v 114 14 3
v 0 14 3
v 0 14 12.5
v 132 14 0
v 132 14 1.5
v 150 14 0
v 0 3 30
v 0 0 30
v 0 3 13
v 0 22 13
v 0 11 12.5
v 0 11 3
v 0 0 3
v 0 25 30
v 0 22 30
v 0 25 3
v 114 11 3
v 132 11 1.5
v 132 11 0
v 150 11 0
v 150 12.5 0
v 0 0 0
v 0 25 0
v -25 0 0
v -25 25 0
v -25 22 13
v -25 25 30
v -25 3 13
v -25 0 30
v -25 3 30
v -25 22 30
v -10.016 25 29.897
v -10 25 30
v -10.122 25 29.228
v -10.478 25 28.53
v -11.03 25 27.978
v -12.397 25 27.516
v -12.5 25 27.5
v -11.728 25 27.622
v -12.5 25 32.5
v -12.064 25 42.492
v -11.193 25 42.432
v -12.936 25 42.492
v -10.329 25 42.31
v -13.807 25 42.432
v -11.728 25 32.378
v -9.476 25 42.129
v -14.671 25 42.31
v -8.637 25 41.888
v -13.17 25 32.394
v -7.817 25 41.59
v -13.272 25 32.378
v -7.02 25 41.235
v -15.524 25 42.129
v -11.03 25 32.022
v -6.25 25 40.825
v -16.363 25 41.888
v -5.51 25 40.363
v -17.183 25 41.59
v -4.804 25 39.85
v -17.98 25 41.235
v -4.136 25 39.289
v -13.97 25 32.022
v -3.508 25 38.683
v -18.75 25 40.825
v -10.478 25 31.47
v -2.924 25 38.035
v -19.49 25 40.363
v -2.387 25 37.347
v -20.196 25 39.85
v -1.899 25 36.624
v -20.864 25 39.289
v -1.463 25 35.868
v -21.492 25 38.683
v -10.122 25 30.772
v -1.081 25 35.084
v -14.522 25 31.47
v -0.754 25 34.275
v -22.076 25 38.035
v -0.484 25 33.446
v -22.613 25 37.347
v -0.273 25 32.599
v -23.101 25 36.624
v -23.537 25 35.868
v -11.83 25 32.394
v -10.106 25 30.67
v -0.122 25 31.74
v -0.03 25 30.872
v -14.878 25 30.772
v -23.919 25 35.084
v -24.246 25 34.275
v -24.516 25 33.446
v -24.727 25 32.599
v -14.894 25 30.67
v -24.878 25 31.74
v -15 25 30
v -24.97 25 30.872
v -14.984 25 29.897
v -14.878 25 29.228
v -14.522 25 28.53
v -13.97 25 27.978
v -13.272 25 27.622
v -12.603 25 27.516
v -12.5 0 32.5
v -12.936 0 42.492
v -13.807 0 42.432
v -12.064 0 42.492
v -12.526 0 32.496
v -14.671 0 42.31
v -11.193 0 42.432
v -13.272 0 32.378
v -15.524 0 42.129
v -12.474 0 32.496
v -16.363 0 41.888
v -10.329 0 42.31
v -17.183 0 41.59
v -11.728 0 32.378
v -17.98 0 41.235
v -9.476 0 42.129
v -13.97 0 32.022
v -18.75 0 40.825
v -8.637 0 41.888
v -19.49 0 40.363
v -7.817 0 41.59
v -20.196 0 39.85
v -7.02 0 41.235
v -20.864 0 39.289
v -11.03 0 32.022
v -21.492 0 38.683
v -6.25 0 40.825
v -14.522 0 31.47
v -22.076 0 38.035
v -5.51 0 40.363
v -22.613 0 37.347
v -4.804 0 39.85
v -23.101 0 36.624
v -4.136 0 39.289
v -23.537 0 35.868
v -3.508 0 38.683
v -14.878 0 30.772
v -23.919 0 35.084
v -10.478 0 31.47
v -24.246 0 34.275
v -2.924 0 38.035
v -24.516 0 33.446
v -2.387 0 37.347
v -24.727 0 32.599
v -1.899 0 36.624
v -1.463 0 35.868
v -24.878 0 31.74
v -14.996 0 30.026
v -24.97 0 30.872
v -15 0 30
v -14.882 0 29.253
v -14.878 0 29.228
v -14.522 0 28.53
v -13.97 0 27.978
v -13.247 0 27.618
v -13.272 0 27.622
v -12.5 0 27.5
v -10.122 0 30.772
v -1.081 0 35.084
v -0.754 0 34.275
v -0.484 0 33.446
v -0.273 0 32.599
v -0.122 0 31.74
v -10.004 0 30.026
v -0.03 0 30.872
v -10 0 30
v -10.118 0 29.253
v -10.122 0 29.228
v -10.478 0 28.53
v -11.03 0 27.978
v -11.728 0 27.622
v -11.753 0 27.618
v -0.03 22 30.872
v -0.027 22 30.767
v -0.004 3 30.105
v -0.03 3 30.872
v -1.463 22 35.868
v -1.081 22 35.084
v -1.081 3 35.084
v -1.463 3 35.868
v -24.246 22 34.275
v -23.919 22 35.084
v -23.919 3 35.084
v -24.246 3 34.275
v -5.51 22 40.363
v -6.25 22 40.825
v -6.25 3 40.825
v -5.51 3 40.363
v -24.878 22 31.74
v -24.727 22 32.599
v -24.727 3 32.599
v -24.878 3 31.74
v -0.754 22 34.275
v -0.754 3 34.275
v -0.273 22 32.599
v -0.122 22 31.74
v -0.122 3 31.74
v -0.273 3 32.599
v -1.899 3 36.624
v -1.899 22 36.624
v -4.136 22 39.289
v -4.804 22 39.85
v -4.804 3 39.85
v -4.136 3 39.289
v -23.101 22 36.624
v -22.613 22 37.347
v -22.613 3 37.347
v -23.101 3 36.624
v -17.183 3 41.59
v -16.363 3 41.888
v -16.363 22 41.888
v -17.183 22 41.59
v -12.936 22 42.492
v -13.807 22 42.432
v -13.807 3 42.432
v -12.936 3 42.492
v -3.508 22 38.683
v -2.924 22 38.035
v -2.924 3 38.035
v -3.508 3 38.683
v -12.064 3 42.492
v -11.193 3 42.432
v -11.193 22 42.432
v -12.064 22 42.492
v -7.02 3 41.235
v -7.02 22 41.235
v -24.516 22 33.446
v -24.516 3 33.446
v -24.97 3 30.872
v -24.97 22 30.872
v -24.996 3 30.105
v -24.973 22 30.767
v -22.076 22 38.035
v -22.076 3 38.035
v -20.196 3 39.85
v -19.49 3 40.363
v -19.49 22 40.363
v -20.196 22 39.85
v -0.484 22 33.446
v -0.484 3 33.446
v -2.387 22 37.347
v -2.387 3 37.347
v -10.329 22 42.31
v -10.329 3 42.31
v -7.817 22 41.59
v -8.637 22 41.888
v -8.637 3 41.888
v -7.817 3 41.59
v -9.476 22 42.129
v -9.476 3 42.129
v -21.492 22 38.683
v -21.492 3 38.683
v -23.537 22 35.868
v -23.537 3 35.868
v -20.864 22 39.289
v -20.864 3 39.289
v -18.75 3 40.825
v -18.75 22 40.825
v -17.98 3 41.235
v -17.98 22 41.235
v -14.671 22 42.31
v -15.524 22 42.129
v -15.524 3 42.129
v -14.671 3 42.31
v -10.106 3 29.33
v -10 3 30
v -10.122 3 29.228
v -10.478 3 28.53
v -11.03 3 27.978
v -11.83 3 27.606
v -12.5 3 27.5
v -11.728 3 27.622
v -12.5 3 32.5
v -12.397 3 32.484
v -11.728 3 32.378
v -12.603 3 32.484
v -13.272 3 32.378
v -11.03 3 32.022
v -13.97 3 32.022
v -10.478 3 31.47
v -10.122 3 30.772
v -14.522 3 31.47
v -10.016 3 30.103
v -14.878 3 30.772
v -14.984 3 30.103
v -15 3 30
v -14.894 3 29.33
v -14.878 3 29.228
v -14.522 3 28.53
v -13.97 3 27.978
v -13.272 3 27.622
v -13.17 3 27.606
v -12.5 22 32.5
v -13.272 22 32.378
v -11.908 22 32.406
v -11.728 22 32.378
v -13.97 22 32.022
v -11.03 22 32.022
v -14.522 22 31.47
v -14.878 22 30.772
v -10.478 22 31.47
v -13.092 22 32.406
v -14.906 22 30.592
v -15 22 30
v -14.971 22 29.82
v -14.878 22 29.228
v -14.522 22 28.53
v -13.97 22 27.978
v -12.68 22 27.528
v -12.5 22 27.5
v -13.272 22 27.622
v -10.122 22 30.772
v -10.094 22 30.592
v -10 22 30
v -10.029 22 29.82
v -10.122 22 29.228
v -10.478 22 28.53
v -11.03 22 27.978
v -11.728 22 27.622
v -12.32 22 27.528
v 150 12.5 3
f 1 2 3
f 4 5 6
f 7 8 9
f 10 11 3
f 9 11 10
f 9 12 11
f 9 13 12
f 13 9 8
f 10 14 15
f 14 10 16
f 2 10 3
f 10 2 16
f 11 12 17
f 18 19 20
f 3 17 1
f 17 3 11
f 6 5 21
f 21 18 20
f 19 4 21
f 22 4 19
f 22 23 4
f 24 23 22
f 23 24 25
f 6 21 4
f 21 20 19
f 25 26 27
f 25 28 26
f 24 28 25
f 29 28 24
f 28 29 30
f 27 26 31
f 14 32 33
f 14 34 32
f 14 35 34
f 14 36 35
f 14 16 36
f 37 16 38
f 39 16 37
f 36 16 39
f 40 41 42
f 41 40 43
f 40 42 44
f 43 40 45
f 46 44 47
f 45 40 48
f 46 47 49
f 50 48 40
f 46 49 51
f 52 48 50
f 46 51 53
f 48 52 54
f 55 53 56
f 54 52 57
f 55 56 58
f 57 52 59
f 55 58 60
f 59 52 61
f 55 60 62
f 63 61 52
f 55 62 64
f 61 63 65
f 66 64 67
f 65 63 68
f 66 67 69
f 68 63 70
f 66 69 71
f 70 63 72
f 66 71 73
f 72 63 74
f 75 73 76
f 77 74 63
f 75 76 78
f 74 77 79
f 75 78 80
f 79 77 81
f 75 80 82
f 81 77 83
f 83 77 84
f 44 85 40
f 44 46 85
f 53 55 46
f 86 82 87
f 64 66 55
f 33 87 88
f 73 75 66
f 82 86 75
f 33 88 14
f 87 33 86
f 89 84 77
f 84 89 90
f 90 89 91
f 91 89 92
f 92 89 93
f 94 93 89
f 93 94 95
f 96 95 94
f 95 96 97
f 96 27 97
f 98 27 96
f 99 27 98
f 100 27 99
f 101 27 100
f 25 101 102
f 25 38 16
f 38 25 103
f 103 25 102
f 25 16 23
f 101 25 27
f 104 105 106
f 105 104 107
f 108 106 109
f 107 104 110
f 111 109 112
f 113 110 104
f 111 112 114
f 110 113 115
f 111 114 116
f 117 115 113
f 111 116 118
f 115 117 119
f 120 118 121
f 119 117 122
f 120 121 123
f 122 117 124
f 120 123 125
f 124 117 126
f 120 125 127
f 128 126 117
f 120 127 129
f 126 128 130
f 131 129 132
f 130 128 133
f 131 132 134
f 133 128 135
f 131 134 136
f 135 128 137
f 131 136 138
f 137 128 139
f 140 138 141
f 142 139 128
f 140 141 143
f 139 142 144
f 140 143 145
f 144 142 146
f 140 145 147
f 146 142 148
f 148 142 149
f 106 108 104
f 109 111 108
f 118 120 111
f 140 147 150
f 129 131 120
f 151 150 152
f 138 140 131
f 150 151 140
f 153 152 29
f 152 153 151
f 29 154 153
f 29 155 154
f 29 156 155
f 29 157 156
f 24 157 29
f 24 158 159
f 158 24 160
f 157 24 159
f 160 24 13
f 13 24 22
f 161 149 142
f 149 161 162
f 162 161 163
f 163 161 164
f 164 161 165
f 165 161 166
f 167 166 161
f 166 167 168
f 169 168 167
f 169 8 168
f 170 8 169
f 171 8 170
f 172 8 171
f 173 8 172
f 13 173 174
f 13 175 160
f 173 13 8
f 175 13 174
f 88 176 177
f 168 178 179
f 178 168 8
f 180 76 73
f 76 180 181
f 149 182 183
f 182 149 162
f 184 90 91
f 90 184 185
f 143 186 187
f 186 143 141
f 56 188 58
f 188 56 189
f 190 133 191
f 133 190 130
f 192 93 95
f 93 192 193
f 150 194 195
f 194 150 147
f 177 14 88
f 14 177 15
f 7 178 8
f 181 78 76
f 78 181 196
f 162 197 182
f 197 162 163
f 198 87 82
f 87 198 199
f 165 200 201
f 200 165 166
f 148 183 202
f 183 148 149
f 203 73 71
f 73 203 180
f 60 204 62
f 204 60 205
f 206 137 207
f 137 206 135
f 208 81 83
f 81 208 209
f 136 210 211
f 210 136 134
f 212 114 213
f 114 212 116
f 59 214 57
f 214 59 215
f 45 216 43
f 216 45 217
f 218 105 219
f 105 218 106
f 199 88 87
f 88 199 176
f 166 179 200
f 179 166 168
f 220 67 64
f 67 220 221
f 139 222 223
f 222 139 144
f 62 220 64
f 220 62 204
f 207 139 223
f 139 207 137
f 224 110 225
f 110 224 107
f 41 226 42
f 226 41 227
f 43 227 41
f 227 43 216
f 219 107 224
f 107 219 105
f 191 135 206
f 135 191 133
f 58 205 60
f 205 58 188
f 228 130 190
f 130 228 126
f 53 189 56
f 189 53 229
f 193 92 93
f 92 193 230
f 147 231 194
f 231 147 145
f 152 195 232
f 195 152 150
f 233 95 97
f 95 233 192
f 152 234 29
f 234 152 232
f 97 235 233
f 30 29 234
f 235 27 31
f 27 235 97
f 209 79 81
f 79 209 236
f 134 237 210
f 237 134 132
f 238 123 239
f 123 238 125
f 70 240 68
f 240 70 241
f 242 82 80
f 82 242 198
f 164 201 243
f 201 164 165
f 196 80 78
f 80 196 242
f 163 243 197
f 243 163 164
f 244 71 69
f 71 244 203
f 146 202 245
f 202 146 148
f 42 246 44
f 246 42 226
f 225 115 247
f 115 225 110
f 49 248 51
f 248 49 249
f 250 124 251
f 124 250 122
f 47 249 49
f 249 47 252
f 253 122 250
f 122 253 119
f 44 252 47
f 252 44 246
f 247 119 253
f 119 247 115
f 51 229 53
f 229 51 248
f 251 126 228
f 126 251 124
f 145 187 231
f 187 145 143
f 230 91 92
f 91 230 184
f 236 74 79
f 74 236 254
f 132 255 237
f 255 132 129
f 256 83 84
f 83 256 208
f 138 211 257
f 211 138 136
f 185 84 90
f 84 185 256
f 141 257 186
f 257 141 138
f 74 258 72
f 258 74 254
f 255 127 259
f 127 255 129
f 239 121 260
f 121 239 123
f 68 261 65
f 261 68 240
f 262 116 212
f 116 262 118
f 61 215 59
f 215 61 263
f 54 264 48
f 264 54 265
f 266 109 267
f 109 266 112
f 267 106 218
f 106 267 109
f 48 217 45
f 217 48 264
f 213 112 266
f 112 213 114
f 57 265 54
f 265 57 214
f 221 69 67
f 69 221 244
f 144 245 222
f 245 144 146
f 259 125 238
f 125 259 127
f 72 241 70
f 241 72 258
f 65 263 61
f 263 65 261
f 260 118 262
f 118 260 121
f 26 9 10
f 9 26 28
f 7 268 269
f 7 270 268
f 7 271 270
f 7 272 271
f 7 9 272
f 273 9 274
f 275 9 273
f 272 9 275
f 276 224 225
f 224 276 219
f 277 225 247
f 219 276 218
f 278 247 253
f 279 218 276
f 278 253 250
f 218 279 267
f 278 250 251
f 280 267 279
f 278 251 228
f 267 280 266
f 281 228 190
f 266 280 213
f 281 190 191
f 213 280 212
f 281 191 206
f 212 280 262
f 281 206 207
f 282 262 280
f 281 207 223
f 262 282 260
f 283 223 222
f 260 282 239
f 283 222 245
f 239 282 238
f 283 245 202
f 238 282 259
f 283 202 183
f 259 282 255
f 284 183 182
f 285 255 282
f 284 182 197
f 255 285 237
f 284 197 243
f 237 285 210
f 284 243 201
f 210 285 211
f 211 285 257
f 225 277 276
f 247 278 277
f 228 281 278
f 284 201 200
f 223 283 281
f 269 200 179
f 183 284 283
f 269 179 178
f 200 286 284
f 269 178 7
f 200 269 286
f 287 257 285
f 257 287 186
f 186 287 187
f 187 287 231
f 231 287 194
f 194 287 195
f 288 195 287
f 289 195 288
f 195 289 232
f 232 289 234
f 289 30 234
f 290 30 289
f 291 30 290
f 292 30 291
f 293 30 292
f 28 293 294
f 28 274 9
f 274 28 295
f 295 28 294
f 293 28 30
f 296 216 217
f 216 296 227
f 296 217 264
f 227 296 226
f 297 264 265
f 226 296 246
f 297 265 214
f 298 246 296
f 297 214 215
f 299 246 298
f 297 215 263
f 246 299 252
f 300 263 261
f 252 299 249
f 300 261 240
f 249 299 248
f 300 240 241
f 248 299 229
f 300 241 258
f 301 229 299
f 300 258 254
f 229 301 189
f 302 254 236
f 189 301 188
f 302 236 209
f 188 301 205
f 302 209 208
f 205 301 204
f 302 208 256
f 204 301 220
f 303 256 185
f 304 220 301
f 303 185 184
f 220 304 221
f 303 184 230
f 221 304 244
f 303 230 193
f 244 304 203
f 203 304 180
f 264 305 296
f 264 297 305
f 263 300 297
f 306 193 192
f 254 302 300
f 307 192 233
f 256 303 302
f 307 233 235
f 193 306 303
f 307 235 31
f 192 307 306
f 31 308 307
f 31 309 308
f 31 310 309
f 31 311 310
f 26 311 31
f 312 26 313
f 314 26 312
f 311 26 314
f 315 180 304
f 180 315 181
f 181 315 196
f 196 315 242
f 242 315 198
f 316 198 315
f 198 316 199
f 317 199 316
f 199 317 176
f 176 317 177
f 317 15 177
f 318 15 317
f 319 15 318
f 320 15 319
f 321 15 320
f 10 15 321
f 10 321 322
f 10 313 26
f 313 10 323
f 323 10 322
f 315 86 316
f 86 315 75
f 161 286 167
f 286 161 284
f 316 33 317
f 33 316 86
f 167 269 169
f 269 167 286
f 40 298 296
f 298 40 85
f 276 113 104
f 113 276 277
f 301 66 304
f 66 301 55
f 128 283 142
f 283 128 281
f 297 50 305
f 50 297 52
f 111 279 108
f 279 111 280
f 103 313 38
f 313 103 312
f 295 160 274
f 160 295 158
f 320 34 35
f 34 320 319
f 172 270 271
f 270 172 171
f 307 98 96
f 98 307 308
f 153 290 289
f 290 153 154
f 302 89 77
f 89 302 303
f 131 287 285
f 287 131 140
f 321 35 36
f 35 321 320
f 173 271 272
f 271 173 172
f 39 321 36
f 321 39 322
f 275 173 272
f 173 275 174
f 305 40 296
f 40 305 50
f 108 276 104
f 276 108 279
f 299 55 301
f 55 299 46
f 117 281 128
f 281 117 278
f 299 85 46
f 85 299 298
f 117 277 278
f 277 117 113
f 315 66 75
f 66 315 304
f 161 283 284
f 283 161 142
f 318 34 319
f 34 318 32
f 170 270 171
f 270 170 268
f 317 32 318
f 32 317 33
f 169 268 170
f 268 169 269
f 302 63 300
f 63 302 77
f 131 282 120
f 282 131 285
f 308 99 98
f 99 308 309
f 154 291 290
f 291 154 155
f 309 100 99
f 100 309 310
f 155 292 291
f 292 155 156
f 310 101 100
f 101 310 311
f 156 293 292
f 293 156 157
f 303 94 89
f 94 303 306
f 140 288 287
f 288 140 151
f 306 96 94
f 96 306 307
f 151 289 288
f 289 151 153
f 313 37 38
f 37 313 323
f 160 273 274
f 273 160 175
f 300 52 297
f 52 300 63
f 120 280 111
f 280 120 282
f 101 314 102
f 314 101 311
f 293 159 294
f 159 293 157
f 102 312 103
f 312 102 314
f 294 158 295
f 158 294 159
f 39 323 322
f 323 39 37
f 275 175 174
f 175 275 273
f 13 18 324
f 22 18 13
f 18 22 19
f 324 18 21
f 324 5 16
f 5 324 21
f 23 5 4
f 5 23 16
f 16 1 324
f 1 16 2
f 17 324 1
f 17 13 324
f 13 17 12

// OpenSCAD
$fs=0.8; // def 1, 0.2 is high res
$fa=4;//def 12, 3 is very nice
%translate([0,0,-0.5])cube([200,200,1],center=true); //build platform

height = 30;
holer = 19;

eqtri = 19;

/*
difference () {
	//body
	translate([0,5,height/2]) cube ([27,27,30], true);
	translate([0,0,-1]) cylinder(32,9.5,9.5);

	//spike attach point
	rotate([0,0,90]) translate([13,-eqtri/2,-1]) linear_extrude(height+2)
	{
		polygon(points=[[0,0],[eqtri, eqtri/2],[0,eqtri]], paths=[[0,1,2]]);
	}

	//bolt hole
	rotate([0,90,0]) translate([-15,0,-15]) cylinder(30,2.5,2.5);
}

*/

linear_extrude(3)
{
	polygon(points=[[0,0],[0, 25],[150,12.5]], paths=[[0,1,2]]);
}

difference() {

rotate([90,0,0]) translate([0,-12.5,-14])
linear_extrude(3)
{
	polygon(points=[[0,0],[0, 25],[150,12.5]], paths=[[0,1,2]]);
}
translate([0,0,-10])cube([400,400,20],center=true);

}

difference() {
union() {
	translate([-25,0,0]) cube([25,25,30]);
	rotate([90,0,0]) translate([-12.5,30,-25]) cylinder(25,12.5,12.5);
}
translate([-26,3,13]) cube([30,19,40]);
	//bolt hole
	rotate([90,0,0]) translate([-12.5,30,-29]) cylinder(30,2.5,2.5);
}
